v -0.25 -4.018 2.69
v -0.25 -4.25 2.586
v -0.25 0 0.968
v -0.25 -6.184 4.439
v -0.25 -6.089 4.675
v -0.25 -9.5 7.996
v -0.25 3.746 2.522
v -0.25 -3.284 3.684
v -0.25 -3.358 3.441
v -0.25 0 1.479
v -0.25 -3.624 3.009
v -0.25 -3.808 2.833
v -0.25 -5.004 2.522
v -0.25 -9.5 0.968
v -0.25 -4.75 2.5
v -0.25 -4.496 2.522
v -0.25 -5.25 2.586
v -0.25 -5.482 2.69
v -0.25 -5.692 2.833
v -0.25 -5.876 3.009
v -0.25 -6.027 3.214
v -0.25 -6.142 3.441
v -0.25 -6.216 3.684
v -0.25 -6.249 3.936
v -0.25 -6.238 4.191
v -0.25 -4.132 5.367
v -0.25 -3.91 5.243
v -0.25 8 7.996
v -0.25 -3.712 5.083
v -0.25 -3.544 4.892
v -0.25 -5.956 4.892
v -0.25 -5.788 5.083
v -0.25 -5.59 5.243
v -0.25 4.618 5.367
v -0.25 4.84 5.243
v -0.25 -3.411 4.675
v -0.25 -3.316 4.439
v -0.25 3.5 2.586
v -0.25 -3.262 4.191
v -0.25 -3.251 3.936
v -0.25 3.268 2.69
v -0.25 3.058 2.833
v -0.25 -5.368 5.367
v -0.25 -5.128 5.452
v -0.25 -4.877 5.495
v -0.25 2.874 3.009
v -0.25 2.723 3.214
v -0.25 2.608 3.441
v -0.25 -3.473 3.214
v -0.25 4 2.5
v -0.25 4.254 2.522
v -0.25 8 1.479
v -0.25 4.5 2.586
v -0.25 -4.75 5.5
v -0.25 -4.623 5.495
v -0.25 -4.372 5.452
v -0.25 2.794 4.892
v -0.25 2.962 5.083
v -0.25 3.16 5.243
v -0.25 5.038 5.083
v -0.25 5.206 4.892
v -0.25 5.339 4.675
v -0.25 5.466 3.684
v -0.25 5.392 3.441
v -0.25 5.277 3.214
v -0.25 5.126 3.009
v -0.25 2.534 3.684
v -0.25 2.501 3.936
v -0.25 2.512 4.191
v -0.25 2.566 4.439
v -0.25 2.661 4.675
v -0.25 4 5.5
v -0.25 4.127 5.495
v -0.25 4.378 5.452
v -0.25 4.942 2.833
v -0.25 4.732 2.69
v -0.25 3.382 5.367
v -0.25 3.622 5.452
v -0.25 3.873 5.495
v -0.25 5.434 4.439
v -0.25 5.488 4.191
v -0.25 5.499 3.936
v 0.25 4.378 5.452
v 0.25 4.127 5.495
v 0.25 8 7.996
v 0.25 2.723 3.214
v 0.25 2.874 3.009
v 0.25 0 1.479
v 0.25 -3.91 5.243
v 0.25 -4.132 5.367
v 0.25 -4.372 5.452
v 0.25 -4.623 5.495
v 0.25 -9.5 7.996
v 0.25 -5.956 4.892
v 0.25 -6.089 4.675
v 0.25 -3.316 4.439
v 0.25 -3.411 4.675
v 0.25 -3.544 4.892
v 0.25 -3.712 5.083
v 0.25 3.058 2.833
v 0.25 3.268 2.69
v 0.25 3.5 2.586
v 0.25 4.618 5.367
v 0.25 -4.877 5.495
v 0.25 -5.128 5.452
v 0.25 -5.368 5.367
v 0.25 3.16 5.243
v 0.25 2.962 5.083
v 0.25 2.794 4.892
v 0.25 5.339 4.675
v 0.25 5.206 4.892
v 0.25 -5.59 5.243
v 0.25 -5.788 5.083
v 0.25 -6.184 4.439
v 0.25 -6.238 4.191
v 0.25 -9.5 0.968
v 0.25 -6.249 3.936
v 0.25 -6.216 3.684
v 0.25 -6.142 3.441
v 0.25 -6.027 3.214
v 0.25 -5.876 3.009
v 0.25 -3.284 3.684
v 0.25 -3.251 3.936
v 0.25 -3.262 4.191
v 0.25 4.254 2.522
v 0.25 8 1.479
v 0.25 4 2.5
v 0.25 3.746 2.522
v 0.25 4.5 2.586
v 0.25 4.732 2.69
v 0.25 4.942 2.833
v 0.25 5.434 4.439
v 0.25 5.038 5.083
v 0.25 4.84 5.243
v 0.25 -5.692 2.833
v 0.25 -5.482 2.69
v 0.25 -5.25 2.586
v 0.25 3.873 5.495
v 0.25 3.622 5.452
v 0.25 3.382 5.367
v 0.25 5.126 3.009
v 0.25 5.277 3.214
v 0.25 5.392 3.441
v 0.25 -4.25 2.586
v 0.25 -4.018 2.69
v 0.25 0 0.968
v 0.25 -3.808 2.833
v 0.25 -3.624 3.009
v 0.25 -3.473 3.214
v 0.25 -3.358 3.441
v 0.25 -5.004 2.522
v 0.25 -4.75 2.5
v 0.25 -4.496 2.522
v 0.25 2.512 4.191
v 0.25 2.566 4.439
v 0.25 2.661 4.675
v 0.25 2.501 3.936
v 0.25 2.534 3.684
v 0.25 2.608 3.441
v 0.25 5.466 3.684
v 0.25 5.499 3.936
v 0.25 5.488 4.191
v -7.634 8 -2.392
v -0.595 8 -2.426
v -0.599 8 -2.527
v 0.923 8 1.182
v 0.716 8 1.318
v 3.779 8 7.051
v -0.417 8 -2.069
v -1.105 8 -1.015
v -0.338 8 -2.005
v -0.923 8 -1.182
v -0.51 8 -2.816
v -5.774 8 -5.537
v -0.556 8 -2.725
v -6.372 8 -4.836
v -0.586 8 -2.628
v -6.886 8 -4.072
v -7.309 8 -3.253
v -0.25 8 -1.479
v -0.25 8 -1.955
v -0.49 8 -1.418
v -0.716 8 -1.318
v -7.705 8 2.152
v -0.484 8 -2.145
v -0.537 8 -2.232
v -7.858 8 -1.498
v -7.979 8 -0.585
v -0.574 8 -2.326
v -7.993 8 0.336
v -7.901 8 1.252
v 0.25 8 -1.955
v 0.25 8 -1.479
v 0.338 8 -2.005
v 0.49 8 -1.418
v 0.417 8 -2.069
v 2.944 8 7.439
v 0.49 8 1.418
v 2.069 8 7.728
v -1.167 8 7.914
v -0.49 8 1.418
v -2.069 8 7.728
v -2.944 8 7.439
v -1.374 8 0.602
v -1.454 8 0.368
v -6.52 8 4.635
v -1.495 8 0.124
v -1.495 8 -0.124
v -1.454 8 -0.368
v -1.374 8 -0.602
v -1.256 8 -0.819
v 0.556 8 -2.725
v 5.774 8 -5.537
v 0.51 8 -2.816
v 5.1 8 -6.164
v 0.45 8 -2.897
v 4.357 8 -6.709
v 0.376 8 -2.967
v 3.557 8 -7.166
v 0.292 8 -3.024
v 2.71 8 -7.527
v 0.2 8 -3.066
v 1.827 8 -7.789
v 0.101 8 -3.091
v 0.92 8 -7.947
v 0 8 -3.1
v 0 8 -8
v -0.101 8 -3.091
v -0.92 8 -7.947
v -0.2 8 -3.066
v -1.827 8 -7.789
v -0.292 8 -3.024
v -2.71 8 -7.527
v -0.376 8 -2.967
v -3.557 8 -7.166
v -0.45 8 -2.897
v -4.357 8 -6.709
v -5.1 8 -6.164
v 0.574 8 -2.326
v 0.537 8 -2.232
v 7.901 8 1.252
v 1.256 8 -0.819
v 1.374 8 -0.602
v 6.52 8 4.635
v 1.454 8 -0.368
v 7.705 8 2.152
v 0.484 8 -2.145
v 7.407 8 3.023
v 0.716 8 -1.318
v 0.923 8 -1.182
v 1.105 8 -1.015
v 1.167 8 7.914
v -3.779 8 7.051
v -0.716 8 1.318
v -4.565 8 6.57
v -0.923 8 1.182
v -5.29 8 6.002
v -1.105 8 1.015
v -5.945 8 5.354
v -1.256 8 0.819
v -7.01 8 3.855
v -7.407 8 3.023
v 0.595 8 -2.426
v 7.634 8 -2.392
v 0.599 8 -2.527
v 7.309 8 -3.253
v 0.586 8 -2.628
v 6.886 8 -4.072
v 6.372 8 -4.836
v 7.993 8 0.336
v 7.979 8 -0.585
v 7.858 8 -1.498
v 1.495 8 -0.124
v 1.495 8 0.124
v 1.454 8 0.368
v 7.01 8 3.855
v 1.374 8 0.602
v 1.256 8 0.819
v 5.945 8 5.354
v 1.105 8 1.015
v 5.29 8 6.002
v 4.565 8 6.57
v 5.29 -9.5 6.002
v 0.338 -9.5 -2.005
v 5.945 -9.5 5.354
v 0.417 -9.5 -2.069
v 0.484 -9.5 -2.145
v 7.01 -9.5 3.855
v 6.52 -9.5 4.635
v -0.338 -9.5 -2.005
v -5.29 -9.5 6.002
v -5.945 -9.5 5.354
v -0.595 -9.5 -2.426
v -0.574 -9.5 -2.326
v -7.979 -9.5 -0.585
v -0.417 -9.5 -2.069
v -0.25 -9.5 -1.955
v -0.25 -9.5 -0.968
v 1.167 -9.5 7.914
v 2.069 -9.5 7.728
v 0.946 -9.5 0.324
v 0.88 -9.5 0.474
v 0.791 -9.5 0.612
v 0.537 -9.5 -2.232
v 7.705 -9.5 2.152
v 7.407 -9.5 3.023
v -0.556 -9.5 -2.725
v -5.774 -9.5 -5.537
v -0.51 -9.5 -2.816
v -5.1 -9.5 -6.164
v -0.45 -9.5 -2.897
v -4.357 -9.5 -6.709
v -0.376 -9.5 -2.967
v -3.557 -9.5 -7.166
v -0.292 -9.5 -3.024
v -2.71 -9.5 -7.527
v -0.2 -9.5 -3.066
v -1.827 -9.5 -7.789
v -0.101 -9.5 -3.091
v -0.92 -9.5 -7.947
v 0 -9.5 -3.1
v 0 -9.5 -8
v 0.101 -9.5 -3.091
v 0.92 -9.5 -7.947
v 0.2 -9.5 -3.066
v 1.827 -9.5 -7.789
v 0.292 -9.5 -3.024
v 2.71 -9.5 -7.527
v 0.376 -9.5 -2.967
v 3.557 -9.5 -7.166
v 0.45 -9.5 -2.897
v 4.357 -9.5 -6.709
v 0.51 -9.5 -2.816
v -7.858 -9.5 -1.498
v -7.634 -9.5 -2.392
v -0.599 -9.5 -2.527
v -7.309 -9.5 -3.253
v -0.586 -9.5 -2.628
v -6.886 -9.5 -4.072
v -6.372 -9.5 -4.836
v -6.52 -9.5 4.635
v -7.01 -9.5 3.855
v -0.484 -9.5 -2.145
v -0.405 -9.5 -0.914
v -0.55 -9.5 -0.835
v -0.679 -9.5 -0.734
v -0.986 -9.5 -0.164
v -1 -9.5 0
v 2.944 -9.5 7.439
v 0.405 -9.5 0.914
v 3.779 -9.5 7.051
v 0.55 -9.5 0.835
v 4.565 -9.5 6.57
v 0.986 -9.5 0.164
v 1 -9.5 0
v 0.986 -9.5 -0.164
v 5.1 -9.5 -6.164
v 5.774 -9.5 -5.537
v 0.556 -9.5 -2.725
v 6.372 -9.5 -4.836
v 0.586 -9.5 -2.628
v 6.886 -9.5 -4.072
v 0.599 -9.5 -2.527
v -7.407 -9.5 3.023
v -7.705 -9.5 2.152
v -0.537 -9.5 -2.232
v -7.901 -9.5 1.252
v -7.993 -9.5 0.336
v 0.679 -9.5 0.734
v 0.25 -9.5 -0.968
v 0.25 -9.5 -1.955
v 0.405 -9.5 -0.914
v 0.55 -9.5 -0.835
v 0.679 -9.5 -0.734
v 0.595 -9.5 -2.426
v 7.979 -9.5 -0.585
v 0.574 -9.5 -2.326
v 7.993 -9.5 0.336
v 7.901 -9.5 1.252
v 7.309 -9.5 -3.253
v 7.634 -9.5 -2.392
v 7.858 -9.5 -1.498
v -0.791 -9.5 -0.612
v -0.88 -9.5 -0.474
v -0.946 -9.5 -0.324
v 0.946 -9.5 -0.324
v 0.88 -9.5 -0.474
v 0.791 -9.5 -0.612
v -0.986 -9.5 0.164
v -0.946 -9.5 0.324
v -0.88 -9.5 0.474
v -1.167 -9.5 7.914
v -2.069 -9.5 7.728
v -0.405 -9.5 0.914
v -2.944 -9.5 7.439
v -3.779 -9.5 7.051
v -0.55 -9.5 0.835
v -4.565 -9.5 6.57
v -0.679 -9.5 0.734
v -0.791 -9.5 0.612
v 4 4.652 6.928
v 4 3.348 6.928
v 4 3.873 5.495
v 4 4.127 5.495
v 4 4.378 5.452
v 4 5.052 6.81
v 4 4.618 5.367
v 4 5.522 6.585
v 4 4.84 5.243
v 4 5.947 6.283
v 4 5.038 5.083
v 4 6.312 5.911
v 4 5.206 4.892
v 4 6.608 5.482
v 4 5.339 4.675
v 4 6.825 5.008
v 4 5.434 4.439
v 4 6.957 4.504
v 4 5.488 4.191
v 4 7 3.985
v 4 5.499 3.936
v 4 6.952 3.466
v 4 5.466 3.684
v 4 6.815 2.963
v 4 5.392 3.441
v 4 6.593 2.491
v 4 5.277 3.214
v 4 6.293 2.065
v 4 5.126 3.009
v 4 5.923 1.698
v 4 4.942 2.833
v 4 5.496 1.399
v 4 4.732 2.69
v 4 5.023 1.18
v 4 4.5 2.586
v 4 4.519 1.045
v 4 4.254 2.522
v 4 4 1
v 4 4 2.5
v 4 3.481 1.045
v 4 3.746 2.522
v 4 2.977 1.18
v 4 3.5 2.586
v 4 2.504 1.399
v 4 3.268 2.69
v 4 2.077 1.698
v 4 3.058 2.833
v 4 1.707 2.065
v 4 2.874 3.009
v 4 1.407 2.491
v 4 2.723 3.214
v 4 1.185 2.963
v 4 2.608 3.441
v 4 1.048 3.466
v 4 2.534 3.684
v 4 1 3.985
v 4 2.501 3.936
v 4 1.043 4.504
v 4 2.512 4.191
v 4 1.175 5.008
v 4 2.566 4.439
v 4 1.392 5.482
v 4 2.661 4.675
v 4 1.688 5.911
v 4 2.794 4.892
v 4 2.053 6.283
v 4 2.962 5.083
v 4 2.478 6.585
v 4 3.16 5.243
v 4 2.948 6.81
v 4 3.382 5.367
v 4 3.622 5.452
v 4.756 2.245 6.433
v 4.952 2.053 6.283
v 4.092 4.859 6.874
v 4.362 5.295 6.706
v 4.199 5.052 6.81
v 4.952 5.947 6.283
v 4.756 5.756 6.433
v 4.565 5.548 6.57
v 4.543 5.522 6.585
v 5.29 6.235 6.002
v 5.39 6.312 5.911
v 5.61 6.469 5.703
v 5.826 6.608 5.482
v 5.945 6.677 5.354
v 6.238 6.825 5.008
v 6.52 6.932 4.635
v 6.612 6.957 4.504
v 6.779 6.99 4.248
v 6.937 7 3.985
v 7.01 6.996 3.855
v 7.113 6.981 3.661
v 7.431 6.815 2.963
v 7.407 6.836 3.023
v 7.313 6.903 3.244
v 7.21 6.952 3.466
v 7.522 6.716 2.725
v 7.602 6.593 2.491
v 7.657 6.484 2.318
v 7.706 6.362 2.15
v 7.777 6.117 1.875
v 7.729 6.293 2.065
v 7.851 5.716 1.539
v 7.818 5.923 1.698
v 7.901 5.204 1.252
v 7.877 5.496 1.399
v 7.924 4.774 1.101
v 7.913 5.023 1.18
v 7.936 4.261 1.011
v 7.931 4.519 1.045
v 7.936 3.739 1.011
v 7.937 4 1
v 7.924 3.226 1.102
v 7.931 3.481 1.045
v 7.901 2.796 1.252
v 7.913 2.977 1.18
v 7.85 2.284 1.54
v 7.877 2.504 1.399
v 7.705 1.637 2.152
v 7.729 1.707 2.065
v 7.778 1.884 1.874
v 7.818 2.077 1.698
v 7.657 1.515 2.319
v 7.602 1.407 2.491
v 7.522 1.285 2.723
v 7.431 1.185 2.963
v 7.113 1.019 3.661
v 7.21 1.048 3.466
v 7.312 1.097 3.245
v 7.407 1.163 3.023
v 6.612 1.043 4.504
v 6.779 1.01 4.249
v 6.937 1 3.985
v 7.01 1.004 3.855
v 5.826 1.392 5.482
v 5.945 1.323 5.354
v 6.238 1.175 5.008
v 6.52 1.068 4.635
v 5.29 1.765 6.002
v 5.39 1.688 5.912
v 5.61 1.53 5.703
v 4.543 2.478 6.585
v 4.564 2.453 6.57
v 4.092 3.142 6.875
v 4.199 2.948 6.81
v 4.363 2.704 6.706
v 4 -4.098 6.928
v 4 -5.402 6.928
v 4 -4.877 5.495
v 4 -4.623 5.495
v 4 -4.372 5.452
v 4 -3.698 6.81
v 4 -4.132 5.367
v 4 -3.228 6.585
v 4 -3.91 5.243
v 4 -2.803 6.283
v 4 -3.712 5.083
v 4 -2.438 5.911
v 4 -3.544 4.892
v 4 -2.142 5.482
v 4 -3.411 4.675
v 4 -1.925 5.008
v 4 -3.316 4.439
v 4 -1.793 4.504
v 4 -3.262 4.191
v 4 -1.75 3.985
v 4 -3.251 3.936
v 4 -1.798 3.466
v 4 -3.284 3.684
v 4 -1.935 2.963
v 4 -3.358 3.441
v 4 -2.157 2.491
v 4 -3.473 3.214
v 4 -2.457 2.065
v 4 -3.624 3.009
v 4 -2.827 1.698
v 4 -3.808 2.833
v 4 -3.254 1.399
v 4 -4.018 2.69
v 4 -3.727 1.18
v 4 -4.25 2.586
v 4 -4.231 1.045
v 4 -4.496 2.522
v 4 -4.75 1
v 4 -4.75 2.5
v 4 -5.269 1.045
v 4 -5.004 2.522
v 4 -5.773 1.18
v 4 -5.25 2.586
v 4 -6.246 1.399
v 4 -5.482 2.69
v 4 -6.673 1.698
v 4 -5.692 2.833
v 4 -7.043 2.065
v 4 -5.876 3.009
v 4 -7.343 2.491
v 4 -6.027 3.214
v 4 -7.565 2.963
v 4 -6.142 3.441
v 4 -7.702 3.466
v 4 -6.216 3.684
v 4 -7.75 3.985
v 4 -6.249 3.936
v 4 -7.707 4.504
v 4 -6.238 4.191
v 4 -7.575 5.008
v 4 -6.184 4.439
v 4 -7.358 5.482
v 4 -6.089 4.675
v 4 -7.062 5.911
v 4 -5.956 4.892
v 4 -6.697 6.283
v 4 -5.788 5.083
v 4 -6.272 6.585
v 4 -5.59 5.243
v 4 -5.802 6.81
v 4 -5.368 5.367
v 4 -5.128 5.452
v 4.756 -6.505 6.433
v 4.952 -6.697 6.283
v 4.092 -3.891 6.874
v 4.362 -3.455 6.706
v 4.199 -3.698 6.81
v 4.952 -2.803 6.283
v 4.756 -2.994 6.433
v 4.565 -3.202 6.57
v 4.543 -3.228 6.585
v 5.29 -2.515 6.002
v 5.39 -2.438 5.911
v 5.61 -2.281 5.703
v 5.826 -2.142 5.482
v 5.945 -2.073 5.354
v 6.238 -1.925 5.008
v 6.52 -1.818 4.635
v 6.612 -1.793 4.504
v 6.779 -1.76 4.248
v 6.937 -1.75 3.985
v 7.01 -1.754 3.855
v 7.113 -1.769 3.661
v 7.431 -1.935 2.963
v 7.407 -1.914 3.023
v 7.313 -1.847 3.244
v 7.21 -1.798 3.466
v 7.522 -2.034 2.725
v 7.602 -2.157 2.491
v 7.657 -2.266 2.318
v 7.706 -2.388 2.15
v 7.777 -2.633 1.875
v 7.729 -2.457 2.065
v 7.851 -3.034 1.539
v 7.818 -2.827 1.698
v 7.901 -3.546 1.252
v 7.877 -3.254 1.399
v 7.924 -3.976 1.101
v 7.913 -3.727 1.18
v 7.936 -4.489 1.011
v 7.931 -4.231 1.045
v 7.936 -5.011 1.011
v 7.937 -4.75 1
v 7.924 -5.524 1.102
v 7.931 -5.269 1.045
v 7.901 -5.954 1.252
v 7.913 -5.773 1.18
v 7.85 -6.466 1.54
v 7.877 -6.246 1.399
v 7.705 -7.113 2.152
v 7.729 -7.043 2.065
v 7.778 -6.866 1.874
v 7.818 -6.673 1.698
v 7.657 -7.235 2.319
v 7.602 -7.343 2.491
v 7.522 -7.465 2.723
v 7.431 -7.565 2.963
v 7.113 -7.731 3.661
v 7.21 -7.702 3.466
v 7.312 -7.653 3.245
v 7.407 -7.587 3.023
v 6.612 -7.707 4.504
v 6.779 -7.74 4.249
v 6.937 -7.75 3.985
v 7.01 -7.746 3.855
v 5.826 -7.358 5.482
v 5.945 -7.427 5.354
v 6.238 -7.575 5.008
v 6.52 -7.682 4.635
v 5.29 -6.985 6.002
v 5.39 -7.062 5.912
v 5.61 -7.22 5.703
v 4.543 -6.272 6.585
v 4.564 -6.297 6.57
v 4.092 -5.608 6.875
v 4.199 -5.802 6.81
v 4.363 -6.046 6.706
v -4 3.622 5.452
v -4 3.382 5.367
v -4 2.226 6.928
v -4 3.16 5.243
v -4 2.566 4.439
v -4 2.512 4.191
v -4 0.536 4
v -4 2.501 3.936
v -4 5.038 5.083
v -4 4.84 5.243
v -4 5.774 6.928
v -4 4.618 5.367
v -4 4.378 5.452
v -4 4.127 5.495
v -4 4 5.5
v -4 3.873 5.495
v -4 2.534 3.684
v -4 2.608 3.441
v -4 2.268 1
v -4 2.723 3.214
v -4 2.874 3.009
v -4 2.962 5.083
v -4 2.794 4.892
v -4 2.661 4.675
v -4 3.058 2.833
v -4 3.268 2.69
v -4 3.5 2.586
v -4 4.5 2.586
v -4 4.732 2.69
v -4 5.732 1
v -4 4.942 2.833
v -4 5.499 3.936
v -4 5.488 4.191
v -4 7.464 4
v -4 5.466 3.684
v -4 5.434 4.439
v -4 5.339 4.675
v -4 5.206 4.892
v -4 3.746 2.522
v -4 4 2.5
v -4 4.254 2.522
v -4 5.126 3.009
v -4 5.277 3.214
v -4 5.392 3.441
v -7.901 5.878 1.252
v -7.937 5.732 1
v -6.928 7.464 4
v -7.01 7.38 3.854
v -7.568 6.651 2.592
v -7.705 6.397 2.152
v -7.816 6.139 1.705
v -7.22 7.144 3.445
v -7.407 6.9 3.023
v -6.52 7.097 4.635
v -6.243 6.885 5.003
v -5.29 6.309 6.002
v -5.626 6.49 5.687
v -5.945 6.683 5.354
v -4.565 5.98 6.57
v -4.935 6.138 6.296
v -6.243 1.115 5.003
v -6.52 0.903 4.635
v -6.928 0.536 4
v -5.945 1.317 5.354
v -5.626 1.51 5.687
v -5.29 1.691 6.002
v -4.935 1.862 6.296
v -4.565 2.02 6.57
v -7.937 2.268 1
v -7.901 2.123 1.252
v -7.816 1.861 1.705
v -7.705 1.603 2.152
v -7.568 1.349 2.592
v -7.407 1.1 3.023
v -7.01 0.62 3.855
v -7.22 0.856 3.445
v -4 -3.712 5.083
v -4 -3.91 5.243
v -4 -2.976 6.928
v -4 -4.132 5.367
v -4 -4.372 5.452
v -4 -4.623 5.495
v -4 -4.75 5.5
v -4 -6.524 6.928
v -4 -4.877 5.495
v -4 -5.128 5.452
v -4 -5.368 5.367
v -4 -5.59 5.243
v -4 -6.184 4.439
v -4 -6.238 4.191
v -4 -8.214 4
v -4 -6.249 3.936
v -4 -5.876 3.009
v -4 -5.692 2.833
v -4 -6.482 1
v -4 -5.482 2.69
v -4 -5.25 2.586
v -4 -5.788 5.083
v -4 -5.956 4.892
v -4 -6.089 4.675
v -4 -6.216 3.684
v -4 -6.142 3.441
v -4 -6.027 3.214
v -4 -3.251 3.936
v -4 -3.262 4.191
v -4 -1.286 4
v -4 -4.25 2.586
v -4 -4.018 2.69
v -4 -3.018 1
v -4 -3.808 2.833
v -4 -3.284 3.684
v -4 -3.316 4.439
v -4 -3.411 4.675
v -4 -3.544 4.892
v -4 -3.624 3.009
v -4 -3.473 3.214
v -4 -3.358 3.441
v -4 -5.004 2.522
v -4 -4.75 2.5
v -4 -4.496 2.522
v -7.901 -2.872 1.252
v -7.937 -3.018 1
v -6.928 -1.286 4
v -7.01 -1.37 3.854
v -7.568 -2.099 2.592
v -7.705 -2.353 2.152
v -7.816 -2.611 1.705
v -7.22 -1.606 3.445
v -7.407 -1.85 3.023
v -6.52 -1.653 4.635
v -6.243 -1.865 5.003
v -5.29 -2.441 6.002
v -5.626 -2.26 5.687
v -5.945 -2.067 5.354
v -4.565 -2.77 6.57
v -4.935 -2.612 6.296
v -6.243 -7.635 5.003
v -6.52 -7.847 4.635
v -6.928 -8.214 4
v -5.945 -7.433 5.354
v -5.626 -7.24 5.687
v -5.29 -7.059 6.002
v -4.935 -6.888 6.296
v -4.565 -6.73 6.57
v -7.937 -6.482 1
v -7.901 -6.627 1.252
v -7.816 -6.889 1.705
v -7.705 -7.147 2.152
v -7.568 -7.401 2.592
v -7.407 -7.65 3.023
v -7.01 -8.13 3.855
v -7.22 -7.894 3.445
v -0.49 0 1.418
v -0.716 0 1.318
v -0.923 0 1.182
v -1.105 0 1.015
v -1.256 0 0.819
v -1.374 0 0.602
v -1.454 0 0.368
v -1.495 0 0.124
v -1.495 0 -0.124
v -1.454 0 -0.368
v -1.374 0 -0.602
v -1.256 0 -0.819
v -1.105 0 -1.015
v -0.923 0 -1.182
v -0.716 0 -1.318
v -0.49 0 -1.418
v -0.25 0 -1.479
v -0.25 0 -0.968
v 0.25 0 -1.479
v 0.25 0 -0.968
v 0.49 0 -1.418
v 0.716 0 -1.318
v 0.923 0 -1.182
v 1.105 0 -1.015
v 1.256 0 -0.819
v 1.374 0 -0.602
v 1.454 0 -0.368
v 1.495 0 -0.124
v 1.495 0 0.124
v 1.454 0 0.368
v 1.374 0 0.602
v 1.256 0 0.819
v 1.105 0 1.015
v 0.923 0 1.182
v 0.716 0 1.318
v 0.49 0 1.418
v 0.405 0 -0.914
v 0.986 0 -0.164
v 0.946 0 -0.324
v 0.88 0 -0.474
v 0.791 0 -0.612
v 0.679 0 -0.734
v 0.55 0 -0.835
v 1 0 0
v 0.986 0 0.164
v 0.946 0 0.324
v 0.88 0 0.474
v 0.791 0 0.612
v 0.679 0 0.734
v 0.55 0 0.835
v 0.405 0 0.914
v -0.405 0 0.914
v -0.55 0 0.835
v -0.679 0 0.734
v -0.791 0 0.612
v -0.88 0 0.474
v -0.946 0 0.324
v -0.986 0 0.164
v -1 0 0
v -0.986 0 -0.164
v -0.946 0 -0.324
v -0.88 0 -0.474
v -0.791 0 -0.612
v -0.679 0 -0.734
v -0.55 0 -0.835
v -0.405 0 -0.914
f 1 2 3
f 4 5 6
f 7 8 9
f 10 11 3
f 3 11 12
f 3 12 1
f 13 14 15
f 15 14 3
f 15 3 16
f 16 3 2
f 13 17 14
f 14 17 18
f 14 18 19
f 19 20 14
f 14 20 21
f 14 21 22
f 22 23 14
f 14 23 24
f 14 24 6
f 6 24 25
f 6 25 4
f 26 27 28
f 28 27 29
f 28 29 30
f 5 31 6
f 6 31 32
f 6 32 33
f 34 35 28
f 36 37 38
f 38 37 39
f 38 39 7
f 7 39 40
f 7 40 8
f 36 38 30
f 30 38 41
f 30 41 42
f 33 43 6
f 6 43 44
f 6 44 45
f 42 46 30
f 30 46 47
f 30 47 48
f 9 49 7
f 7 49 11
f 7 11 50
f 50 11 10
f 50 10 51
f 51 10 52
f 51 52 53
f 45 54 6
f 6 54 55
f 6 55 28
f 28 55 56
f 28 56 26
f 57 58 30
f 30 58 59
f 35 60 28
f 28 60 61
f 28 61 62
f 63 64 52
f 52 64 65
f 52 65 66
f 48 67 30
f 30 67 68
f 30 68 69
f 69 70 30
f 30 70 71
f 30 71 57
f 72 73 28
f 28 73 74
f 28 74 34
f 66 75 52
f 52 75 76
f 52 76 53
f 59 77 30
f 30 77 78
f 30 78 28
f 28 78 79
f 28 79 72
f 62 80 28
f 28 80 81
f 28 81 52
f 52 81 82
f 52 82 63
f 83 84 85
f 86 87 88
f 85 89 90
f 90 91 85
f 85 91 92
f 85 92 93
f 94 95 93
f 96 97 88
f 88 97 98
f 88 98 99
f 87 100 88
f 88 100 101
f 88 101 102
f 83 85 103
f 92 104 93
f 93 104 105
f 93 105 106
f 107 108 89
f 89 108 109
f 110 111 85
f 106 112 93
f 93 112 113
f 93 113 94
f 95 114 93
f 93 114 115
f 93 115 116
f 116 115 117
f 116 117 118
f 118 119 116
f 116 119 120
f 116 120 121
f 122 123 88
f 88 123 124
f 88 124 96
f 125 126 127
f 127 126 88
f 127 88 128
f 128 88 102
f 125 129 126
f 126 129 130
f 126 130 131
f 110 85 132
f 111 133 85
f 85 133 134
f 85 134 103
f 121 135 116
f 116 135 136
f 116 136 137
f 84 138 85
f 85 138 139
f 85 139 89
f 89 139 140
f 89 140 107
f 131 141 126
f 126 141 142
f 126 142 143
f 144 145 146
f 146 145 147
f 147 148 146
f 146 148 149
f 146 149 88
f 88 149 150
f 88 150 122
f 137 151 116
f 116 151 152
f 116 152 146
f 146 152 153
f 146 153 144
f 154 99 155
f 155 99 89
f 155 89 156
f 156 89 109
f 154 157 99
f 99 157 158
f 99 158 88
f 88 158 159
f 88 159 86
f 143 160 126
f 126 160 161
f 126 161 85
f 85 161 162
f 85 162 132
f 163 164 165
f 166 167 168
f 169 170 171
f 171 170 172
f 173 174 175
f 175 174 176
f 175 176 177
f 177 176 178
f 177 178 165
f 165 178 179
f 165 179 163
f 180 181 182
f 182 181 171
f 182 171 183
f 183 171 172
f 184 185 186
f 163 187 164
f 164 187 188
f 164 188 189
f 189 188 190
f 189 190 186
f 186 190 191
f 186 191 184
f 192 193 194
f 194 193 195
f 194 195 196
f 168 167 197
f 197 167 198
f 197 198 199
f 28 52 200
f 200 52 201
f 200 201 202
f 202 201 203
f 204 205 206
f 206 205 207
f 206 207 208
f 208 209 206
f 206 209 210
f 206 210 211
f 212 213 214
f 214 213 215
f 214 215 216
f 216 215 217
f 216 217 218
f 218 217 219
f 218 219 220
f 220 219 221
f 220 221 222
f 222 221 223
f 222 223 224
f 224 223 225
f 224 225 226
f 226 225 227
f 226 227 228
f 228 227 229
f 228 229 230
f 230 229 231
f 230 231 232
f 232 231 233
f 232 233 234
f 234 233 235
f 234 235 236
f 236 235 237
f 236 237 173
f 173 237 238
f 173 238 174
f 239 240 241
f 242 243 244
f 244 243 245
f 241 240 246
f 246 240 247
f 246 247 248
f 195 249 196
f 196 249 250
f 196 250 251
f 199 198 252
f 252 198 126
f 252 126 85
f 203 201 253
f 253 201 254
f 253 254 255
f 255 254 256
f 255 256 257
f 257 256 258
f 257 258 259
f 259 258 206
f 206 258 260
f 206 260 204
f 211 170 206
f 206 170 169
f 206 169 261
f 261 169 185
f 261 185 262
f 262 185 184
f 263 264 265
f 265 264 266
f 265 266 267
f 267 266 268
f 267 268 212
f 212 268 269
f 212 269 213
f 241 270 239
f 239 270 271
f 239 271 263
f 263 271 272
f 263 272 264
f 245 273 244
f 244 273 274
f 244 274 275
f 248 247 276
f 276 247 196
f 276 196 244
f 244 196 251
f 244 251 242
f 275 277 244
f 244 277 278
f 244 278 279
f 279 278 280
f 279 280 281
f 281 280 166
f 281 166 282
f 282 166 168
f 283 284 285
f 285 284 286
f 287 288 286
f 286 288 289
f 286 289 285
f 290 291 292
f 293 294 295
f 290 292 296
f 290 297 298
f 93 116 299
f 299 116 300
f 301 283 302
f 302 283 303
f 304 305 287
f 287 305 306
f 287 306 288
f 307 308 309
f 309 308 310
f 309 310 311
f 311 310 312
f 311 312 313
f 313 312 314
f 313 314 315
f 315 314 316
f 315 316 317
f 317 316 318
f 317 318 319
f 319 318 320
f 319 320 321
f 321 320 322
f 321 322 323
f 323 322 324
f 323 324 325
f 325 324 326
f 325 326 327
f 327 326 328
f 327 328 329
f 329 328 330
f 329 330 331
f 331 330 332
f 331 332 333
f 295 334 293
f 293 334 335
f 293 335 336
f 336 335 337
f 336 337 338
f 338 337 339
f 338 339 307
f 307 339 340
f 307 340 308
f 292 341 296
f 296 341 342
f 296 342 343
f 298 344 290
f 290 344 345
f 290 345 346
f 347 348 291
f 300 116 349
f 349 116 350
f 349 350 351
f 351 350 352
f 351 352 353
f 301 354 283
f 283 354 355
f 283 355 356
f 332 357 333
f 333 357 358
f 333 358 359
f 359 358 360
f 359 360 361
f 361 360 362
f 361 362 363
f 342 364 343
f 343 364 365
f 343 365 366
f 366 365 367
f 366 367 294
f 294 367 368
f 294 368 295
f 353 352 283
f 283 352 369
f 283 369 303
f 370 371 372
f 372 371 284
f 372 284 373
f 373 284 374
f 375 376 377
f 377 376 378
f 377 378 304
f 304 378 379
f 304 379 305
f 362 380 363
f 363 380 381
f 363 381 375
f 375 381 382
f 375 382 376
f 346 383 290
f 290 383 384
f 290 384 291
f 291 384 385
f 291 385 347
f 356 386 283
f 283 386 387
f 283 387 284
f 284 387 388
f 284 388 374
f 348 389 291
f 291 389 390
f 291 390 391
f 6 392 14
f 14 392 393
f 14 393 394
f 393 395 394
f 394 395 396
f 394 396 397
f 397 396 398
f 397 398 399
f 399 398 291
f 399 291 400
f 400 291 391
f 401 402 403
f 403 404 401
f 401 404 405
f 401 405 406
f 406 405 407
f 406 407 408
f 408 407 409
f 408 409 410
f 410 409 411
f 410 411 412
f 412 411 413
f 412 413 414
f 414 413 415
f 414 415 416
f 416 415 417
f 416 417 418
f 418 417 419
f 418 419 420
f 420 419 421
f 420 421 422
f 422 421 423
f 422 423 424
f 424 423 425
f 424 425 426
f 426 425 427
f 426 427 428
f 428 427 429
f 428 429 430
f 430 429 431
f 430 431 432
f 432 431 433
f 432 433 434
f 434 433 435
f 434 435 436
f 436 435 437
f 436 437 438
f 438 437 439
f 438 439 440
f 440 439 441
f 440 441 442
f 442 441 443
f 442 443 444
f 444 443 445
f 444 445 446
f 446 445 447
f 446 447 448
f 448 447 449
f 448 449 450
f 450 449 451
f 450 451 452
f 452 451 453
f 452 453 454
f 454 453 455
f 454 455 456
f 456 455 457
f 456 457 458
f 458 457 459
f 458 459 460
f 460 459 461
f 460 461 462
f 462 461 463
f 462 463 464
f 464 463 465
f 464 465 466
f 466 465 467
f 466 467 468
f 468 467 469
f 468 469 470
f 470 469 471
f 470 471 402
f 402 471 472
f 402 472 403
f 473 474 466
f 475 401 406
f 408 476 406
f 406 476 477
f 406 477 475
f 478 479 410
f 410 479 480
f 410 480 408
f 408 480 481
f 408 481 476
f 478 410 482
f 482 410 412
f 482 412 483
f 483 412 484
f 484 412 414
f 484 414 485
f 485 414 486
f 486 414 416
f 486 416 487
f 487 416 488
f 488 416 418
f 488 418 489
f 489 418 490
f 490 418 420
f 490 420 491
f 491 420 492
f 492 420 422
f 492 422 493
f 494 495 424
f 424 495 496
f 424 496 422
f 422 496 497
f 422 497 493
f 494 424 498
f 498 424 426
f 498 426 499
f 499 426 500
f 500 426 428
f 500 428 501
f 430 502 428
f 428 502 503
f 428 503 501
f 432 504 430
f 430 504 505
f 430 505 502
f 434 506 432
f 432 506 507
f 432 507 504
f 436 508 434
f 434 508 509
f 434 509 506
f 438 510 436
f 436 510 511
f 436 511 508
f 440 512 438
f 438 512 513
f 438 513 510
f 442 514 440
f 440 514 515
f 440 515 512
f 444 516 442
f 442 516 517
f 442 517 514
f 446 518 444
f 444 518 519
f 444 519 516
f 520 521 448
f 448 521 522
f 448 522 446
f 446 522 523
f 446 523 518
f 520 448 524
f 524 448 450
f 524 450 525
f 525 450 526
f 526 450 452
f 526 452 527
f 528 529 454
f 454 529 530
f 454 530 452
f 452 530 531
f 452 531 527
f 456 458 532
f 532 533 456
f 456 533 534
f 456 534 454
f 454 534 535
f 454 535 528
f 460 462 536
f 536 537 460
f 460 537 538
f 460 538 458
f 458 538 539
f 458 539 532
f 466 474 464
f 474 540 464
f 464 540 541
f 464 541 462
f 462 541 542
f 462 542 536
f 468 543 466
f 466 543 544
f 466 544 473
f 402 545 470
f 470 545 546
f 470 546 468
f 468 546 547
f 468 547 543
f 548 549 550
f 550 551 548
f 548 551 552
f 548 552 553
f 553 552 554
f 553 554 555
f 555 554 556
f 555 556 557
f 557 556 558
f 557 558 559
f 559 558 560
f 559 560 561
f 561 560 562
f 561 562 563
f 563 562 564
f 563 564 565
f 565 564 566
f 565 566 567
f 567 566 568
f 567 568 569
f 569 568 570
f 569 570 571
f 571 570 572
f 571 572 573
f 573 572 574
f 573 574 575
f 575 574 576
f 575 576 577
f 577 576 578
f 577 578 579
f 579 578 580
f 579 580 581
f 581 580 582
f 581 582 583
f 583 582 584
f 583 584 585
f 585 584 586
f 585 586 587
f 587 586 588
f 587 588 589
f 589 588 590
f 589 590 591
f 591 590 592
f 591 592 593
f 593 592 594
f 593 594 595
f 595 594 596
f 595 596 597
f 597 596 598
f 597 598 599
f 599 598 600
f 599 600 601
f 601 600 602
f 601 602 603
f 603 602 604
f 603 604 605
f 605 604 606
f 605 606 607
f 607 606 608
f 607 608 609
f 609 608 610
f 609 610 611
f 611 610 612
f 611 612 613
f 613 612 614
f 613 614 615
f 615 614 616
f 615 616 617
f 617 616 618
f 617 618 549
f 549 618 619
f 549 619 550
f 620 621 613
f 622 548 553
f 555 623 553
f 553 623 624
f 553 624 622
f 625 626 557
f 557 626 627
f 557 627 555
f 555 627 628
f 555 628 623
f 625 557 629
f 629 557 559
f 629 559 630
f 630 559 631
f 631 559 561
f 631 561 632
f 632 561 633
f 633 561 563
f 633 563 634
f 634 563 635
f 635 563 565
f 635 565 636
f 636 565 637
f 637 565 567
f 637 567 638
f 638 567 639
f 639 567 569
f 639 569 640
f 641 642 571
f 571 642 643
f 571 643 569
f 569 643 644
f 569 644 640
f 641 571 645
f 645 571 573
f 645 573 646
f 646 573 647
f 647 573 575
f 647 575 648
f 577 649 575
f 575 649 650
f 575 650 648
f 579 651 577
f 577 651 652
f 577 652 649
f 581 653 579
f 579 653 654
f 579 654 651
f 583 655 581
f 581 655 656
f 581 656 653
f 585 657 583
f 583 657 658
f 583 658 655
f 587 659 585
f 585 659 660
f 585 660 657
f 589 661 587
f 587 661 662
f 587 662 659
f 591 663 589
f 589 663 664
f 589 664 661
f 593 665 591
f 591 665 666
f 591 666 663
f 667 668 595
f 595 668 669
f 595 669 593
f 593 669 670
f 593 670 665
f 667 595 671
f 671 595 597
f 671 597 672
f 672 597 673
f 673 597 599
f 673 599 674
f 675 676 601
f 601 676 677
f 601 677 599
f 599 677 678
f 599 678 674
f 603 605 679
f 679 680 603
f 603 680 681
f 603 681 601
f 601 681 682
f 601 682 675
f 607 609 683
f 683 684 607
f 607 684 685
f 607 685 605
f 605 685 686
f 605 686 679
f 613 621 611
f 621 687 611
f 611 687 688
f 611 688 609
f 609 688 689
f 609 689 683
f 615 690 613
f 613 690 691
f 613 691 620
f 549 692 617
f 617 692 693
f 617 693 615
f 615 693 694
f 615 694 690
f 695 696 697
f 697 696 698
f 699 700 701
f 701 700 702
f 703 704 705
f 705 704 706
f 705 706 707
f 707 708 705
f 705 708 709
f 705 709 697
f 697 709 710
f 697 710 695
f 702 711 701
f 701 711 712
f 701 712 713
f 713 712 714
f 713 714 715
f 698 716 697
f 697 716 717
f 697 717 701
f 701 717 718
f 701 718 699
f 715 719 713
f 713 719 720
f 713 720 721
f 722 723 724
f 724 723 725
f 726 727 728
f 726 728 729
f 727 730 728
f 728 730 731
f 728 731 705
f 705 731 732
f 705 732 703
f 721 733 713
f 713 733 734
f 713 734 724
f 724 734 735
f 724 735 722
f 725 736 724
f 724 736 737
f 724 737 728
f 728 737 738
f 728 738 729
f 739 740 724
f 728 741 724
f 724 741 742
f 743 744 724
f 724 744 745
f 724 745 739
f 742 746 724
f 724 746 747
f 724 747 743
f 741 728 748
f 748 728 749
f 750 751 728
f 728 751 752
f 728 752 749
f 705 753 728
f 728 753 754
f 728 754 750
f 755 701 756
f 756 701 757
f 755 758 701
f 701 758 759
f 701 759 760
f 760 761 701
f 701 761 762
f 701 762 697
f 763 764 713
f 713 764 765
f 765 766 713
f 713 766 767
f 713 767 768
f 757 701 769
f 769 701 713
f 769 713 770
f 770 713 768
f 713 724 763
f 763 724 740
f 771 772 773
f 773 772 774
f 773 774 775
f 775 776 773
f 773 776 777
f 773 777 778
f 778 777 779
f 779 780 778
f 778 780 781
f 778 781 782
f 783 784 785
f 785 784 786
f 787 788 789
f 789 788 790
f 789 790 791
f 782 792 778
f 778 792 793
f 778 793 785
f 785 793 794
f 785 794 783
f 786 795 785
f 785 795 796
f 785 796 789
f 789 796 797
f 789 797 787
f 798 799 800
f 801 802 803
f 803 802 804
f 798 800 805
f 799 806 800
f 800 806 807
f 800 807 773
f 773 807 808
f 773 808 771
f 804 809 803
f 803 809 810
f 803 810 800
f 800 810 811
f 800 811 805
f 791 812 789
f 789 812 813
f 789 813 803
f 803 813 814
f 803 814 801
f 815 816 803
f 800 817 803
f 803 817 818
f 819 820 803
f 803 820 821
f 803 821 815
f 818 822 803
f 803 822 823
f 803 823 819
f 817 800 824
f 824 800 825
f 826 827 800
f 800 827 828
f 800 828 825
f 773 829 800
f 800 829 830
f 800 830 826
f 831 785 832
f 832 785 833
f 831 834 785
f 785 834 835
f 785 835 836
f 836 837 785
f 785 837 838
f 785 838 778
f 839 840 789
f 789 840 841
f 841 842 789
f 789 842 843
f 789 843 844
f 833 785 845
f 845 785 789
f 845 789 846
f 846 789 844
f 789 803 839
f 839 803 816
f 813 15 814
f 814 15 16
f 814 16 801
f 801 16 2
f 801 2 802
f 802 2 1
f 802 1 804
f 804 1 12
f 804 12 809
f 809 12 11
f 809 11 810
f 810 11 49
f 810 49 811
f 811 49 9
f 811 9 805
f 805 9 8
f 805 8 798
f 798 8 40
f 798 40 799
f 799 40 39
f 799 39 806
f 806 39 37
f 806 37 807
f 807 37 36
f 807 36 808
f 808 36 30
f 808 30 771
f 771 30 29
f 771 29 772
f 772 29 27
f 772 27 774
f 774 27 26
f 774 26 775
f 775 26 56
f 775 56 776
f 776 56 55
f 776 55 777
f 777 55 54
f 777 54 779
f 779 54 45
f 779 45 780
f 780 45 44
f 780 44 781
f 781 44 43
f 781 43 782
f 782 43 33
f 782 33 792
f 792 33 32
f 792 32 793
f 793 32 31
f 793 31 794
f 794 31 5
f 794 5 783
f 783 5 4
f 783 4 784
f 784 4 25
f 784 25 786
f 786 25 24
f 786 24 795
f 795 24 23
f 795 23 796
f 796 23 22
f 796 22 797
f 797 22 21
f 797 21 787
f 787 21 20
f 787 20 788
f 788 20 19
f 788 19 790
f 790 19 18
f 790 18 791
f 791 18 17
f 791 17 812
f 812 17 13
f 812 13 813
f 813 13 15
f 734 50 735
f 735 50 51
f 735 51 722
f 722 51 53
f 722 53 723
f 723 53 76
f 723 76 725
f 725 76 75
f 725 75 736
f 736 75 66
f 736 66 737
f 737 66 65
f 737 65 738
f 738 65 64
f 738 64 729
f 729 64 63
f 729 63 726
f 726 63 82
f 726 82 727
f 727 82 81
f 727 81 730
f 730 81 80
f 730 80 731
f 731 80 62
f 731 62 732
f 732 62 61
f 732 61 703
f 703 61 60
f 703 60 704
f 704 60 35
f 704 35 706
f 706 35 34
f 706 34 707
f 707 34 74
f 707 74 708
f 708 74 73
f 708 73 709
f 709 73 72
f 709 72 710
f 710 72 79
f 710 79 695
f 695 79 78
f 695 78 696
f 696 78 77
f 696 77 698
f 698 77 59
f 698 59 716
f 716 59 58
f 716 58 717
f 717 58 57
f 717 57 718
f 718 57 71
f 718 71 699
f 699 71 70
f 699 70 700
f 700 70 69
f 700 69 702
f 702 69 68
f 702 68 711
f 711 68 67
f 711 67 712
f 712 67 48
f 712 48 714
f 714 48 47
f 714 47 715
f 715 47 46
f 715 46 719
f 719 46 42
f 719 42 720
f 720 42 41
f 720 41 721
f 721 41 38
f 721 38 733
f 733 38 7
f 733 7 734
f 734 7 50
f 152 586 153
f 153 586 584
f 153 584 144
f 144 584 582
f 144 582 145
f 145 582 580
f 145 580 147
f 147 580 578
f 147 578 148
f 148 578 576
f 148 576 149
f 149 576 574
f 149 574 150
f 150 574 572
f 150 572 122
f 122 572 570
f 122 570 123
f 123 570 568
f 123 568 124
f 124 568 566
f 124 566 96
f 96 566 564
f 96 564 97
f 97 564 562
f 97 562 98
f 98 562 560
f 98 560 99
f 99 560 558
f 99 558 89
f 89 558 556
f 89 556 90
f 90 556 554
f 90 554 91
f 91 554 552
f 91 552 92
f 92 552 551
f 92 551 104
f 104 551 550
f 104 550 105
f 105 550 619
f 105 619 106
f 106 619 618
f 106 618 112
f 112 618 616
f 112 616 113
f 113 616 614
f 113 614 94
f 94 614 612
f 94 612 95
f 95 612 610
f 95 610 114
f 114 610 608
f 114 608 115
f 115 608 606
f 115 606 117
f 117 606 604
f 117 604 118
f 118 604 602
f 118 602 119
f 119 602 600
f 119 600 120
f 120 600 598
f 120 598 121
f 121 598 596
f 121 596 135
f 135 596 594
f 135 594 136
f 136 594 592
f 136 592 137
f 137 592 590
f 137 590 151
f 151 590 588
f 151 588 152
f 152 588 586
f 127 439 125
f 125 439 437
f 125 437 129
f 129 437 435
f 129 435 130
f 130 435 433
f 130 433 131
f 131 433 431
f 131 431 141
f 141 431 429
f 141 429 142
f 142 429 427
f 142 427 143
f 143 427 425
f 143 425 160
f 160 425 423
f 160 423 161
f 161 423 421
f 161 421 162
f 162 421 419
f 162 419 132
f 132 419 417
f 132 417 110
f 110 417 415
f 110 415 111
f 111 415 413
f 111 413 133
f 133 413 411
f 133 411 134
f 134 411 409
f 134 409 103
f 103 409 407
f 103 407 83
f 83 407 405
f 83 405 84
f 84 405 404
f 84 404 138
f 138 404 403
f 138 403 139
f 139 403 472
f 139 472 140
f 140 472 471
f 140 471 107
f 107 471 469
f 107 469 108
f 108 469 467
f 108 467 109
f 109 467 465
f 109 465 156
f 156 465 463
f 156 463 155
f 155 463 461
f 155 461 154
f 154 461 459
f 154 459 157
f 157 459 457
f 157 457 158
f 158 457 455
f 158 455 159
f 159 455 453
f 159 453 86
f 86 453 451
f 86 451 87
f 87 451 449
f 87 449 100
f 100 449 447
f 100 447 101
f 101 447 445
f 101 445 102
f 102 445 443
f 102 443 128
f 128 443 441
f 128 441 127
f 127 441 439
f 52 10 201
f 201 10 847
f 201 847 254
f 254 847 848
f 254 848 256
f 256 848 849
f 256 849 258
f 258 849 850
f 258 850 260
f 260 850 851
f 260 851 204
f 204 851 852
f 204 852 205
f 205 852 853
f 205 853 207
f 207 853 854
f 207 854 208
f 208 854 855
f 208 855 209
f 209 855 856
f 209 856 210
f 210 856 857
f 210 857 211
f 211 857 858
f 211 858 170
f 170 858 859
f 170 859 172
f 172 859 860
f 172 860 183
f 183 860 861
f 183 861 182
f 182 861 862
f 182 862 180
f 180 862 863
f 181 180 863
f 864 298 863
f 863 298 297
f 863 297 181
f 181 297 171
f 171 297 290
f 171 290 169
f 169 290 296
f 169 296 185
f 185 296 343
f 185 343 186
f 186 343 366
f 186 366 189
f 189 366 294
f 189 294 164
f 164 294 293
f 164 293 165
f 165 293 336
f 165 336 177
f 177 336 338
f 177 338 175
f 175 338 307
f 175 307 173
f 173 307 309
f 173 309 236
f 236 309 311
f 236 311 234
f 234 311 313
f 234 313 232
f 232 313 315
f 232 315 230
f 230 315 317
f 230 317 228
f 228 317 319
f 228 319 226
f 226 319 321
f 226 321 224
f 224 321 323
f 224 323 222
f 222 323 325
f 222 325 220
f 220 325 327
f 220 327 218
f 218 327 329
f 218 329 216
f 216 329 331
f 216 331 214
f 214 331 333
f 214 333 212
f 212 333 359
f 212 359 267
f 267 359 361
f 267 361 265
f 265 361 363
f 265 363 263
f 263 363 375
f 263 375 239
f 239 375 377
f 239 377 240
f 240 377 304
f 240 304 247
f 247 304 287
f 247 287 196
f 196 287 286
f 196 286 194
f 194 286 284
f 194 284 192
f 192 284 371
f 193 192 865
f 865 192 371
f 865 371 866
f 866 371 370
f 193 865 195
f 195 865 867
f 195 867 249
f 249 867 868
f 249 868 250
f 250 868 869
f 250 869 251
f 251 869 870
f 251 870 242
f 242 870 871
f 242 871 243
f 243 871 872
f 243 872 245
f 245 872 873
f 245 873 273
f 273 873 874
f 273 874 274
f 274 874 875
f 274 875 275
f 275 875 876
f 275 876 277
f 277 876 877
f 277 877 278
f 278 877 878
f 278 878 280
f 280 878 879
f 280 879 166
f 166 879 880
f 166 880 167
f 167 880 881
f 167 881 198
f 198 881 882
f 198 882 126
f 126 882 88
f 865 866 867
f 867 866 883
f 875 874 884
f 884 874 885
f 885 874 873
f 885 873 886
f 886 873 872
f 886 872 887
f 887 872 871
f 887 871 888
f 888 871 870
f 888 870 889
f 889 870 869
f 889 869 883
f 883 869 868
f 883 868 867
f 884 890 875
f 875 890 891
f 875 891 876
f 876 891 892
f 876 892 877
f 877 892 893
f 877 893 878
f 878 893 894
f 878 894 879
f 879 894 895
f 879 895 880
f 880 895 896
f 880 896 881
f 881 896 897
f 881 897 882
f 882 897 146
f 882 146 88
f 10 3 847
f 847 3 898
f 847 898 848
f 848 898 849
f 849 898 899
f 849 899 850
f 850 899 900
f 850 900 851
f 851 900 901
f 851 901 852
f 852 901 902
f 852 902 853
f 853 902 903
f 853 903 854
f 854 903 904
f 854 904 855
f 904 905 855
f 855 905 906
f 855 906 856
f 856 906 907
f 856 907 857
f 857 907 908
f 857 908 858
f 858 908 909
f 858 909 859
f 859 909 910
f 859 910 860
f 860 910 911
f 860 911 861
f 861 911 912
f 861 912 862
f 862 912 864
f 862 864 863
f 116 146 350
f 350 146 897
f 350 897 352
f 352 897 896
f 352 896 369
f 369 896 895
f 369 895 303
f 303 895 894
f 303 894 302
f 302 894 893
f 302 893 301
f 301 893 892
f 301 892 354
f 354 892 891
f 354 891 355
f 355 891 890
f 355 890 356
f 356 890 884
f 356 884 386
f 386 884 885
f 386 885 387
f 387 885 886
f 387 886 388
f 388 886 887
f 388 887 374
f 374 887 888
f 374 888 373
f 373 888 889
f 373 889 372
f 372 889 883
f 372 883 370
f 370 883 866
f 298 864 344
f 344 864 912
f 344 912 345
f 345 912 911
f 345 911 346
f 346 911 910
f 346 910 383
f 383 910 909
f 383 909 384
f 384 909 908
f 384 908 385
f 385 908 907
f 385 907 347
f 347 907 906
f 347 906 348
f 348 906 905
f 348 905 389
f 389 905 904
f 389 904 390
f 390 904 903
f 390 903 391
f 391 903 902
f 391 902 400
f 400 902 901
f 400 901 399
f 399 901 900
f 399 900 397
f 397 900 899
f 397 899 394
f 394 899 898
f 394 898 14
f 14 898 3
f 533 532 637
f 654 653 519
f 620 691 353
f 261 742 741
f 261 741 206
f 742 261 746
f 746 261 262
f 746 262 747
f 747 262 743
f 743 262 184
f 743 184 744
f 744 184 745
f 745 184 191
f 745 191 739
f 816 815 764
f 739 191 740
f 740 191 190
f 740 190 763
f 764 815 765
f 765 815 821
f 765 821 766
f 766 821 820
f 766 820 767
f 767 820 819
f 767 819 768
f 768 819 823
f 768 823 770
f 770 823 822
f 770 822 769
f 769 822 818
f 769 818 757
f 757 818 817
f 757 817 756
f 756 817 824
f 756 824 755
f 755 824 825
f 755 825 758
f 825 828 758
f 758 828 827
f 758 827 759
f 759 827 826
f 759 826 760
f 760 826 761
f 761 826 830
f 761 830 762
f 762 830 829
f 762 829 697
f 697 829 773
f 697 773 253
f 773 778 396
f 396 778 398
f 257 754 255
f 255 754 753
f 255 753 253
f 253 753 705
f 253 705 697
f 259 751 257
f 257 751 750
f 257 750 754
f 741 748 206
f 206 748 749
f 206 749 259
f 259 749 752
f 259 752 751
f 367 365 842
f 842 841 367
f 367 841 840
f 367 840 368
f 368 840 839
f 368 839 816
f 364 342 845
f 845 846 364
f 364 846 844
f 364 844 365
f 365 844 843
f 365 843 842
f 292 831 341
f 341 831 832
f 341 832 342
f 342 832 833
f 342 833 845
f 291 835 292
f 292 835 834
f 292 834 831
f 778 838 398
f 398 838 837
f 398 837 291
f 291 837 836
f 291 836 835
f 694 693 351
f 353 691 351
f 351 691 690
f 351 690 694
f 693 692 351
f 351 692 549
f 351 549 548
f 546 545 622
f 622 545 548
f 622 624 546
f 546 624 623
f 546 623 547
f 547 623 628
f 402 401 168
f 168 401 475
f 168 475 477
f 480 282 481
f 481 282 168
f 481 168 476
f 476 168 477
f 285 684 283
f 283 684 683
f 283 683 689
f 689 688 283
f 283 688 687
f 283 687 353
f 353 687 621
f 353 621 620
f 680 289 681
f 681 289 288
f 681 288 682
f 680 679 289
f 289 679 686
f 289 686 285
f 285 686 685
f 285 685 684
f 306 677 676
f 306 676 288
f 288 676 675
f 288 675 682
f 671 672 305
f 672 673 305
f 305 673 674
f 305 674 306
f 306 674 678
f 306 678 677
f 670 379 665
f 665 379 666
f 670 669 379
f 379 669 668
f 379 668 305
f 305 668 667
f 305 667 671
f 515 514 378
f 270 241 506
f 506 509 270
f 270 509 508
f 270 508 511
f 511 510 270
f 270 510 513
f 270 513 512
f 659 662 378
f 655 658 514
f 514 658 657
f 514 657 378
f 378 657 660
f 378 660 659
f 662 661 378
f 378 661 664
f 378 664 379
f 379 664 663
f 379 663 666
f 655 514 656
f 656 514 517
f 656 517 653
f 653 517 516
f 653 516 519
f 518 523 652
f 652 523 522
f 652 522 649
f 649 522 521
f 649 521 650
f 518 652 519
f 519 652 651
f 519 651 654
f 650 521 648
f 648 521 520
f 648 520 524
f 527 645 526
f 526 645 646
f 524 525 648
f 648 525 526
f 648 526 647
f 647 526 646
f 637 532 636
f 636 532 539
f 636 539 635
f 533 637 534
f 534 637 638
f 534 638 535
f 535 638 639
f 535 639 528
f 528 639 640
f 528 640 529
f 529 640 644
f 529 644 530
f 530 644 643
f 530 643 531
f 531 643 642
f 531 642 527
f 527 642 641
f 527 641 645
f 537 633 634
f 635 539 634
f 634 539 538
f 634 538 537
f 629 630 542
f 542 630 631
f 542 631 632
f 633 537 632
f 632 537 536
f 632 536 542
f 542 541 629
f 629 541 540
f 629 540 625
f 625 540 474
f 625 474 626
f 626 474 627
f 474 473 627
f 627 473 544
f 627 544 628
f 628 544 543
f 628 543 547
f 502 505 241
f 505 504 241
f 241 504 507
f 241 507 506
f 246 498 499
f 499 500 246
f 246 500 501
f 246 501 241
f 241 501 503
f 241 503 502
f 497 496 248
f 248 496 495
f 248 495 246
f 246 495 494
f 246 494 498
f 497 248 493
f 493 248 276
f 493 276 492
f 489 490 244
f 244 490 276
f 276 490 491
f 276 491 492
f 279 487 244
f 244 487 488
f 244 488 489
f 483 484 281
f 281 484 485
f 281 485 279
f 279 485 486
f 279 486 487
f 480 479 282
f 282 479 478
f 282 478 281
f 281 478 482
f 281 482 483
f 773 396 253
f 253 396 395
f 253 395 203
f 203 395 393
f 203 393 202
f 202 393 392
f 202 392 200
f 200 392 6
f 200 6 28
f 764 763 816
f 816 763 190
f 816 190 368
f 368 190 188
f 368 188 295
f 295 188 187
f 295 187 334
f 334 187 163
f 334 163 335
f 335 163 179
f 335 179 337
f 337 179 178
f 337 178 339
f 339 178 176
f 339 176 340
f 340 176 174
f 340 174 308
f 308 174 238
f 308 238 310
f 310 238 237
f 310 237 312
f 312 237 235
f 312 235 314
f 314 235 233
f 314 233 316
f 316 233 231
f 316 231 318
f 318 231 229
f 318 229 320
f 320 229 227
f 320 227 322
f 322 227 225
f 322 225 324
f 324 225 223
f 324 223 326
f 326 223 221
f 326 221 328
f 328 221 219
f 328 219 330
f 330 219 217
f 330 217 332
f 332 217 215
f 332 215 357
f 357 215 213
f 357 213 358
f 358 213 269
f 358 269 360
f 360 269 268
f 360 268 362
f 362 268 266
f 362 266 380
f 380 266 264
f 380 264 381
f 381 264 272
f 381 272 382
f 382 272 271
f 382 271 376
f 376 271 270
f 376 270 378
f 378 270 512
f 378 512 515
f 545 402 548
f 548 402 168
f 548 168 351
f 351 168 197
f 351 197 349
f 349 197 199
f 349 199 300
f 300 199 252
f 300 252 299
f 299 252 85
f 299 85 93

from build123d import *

# Parameters (mm, degrees)
SALIENTE_EXTRUIR1_DEPTH    = 8
SALIENTE_EXTRUIR2_START    = -9.5
SALIENTE_EXTRUIR2_DEPTH    = 9.5
CORTAR_EXTRUIR1_DEPTH      = 15.773286703
CORTAR_EXTRUIR1_DEPTH_BACK = 15.773286703
CROQUIS3_R                 = 1.5
CROQUIS5_R                 = 3
CORTAR_EXTRUIR2_DEPTH      = 4
CORTAR_EXTRUIR4_DEPTH      = 4
CORTAR_EXTRUIR3_DEPTH      = 15.773286703
CORTAR_EXTRUIR3_DEPTH_BACK = 15.773286703
CROQUIS6_OUTSIDE_W         = 23.722
CROQUIS6_OUTSIDE_H         = 23.722
CROQUIS6_OUTSIDE_R         = 8


with BuildPart() as part:
    # Croquis1 → Saliente-Extruir1 (new body)
    with BuildSketch(Plane(origin=(0, 0, 0), x_dir=(1, 0, 0), z_dir=(0, 1, 0))):
        with BuildLine():
            Line((-0.25, -7.996092796), (-0.25, -1.479019946))
            ThreePointArc((-0.25, -1.479019946), (-1.5, 0), (-0.25, 1.479019946))
            Line((-0.25, 1.479019946), (-0.25, 1.954564394))
            ThreePointArc((-0.25, 1.954564394), (0, 3.1), (0.25, 1.954564394))
            Line((0.25, 1.954564394), (0.25, 1.479019946))
            ThreePointArc((0.25, 1.479019946), (1.5, 0), (0.25, -1.479019946))
            Line((0.25, -1.479019946), (0.25, -7.996092796))
            Line((0.25, -7.996092796), (0.25, -8))
            Line((0.25, -8), (8, -8))
            Line((8, -8), (8, 8))
            Line((8, 8), (-8, 8))
            Line((-8, 8), (-8, -8))
            Line((-8, -8), (-0.25, -8))
            Line((-0.25, -8), (-0.25, -7.996092796))
        make_face()
    extrude(amount=SALIENTE_EXTRUIR1_DEPTH)

    # Croquis2 → Saliente-Extruir2 (add)
    with BuildSketch(Plane(origin=(0, 0, 0), x_dir=(1, 0, 0), z_dir=(0, 1, 0)).offset(SALIENTE_EXTRUIR2_START)):
        with BuildLine():
            Line((0.25, -1.479019946), (0.25, -8))
            Line((0.25, -8), (8, -8))
            Line((8, -8), (8, 8))
            Line((8, 8), (-8, 8))
            Line((-8, 8), (-8, -8))
            Line((-8, -8), (-0.25, -8))
            Line((-0.25, -8), (-0.25, -1.479019946))
            Line((-0.25, -1.479019946), (-0.25, -0.968245837))
            ThreePointArc((-0.25, -0.968245837), (-1, 0), (-0.25, 0.968245837))
            Line((-0.25, 0.968245837), (-0.25, 1.479019946))
            Line((-0.25, 1.479019946), (-0.25, 1.954564394))
            ThreePointArc((-0.25, 1.954564394), (0, 3.1), (0.25, 1.954564394))
            Line((0.25, 1.954564394), (0.25, 1.479019946))
            Line((0.25, 1.479019946), (0.25, 0.968245837))
            ThreePointArc((0.25, 0.968245837), (1, 0), (0.25, -0.968245837))
            Line((0.25, -0.968245837), (0.25, -1.479019946))
        make_face()
    extrude(amount=SALIENTE_EXTRUIR2_DEPTH)

    # Croquis3 → Cortar-Extruir1 (cut, two sides: drawn at the far end of the back side and taken through both)
    with BuildSketch(Plane(origin=(0, 0, 0), x_dir=(0, 0, -1), z_dir=(1, 0, 0)).offset(-CORTAR_EXTRUIR1_DEPTH_BACK)):
        with Locations((-4, 4)):
            Circle(CROQUIS3_R)
        with Locations((-4, -4.75)):
            Circle(CROQUIS3_R)
    extrude(amount=CORTAR_EXTRUIR1_DEPTH + CORTAR_EXTRUIR1_DEPTH_BACK, mode=Mode.SUBTRACT)

    # Croquis5 → Cortar-Extruir2 (cut)
    with BuildSketch(Plane(origin=(8, 0, 0), x_dir=(0, 0, -1), z_dir=(1, 0, 0))):
        with Locations((-4, 4)):
            Circle(CROQUIS5_R)
        with Locations((-4, -4.75)):
            Circle(CROQUIS5_R)
    extrude(amount=-CORTAR_EXTRUIR2_DEPTH, mode=Mode.SUBTRACT)

    # Croquis7 → Cortar-Extruir4 (cut)
    with BuildSketch(Plane.ZY.offset(8)):
        Polygon((1, 5.732050808), (1, 2.267949192), (4, 0.535898385), (7, 2.267949192), (7, 5.732050808), (4, 7.464101615), align=None)
        Polygon((1, -3.017949192), (1, -6.482050808), (4, -8.214101615), (7, -6.482050808), (7, -3.017949192), (4, -1.285898385), align=None)
    extrude(amount=-CORTAR_EXTRUIR4_DEPTH, mode=Mode.SUBTRACT)

    # Croquis6 outside → Cortar-Extruir3 (cut, two sides: drawn at the far end of the back side and taken through both)
    with BuildSketch(Plane(origin=(0, 0, 0), x_dir=(1, 0, 0), z_dir=(0, 1, 0)).offset(-CORTAR_EXTRUIR3_DEPTH_BACK)):
        Rectangle(CROQUIS6_OUTSIDE_W, CROQUIS6_OUTSIDE_H)
        Circle(CROQUIS6_OUTSIDE_R, mode=Mode.SUBTRACT)
    extrude(amount=CORTAR_EXTRUIR3_DEPTH + CORTAR_EXTRUIR3_DEPTH_BACK, mode=Mode.SUBTRACT)


solid = part.part
